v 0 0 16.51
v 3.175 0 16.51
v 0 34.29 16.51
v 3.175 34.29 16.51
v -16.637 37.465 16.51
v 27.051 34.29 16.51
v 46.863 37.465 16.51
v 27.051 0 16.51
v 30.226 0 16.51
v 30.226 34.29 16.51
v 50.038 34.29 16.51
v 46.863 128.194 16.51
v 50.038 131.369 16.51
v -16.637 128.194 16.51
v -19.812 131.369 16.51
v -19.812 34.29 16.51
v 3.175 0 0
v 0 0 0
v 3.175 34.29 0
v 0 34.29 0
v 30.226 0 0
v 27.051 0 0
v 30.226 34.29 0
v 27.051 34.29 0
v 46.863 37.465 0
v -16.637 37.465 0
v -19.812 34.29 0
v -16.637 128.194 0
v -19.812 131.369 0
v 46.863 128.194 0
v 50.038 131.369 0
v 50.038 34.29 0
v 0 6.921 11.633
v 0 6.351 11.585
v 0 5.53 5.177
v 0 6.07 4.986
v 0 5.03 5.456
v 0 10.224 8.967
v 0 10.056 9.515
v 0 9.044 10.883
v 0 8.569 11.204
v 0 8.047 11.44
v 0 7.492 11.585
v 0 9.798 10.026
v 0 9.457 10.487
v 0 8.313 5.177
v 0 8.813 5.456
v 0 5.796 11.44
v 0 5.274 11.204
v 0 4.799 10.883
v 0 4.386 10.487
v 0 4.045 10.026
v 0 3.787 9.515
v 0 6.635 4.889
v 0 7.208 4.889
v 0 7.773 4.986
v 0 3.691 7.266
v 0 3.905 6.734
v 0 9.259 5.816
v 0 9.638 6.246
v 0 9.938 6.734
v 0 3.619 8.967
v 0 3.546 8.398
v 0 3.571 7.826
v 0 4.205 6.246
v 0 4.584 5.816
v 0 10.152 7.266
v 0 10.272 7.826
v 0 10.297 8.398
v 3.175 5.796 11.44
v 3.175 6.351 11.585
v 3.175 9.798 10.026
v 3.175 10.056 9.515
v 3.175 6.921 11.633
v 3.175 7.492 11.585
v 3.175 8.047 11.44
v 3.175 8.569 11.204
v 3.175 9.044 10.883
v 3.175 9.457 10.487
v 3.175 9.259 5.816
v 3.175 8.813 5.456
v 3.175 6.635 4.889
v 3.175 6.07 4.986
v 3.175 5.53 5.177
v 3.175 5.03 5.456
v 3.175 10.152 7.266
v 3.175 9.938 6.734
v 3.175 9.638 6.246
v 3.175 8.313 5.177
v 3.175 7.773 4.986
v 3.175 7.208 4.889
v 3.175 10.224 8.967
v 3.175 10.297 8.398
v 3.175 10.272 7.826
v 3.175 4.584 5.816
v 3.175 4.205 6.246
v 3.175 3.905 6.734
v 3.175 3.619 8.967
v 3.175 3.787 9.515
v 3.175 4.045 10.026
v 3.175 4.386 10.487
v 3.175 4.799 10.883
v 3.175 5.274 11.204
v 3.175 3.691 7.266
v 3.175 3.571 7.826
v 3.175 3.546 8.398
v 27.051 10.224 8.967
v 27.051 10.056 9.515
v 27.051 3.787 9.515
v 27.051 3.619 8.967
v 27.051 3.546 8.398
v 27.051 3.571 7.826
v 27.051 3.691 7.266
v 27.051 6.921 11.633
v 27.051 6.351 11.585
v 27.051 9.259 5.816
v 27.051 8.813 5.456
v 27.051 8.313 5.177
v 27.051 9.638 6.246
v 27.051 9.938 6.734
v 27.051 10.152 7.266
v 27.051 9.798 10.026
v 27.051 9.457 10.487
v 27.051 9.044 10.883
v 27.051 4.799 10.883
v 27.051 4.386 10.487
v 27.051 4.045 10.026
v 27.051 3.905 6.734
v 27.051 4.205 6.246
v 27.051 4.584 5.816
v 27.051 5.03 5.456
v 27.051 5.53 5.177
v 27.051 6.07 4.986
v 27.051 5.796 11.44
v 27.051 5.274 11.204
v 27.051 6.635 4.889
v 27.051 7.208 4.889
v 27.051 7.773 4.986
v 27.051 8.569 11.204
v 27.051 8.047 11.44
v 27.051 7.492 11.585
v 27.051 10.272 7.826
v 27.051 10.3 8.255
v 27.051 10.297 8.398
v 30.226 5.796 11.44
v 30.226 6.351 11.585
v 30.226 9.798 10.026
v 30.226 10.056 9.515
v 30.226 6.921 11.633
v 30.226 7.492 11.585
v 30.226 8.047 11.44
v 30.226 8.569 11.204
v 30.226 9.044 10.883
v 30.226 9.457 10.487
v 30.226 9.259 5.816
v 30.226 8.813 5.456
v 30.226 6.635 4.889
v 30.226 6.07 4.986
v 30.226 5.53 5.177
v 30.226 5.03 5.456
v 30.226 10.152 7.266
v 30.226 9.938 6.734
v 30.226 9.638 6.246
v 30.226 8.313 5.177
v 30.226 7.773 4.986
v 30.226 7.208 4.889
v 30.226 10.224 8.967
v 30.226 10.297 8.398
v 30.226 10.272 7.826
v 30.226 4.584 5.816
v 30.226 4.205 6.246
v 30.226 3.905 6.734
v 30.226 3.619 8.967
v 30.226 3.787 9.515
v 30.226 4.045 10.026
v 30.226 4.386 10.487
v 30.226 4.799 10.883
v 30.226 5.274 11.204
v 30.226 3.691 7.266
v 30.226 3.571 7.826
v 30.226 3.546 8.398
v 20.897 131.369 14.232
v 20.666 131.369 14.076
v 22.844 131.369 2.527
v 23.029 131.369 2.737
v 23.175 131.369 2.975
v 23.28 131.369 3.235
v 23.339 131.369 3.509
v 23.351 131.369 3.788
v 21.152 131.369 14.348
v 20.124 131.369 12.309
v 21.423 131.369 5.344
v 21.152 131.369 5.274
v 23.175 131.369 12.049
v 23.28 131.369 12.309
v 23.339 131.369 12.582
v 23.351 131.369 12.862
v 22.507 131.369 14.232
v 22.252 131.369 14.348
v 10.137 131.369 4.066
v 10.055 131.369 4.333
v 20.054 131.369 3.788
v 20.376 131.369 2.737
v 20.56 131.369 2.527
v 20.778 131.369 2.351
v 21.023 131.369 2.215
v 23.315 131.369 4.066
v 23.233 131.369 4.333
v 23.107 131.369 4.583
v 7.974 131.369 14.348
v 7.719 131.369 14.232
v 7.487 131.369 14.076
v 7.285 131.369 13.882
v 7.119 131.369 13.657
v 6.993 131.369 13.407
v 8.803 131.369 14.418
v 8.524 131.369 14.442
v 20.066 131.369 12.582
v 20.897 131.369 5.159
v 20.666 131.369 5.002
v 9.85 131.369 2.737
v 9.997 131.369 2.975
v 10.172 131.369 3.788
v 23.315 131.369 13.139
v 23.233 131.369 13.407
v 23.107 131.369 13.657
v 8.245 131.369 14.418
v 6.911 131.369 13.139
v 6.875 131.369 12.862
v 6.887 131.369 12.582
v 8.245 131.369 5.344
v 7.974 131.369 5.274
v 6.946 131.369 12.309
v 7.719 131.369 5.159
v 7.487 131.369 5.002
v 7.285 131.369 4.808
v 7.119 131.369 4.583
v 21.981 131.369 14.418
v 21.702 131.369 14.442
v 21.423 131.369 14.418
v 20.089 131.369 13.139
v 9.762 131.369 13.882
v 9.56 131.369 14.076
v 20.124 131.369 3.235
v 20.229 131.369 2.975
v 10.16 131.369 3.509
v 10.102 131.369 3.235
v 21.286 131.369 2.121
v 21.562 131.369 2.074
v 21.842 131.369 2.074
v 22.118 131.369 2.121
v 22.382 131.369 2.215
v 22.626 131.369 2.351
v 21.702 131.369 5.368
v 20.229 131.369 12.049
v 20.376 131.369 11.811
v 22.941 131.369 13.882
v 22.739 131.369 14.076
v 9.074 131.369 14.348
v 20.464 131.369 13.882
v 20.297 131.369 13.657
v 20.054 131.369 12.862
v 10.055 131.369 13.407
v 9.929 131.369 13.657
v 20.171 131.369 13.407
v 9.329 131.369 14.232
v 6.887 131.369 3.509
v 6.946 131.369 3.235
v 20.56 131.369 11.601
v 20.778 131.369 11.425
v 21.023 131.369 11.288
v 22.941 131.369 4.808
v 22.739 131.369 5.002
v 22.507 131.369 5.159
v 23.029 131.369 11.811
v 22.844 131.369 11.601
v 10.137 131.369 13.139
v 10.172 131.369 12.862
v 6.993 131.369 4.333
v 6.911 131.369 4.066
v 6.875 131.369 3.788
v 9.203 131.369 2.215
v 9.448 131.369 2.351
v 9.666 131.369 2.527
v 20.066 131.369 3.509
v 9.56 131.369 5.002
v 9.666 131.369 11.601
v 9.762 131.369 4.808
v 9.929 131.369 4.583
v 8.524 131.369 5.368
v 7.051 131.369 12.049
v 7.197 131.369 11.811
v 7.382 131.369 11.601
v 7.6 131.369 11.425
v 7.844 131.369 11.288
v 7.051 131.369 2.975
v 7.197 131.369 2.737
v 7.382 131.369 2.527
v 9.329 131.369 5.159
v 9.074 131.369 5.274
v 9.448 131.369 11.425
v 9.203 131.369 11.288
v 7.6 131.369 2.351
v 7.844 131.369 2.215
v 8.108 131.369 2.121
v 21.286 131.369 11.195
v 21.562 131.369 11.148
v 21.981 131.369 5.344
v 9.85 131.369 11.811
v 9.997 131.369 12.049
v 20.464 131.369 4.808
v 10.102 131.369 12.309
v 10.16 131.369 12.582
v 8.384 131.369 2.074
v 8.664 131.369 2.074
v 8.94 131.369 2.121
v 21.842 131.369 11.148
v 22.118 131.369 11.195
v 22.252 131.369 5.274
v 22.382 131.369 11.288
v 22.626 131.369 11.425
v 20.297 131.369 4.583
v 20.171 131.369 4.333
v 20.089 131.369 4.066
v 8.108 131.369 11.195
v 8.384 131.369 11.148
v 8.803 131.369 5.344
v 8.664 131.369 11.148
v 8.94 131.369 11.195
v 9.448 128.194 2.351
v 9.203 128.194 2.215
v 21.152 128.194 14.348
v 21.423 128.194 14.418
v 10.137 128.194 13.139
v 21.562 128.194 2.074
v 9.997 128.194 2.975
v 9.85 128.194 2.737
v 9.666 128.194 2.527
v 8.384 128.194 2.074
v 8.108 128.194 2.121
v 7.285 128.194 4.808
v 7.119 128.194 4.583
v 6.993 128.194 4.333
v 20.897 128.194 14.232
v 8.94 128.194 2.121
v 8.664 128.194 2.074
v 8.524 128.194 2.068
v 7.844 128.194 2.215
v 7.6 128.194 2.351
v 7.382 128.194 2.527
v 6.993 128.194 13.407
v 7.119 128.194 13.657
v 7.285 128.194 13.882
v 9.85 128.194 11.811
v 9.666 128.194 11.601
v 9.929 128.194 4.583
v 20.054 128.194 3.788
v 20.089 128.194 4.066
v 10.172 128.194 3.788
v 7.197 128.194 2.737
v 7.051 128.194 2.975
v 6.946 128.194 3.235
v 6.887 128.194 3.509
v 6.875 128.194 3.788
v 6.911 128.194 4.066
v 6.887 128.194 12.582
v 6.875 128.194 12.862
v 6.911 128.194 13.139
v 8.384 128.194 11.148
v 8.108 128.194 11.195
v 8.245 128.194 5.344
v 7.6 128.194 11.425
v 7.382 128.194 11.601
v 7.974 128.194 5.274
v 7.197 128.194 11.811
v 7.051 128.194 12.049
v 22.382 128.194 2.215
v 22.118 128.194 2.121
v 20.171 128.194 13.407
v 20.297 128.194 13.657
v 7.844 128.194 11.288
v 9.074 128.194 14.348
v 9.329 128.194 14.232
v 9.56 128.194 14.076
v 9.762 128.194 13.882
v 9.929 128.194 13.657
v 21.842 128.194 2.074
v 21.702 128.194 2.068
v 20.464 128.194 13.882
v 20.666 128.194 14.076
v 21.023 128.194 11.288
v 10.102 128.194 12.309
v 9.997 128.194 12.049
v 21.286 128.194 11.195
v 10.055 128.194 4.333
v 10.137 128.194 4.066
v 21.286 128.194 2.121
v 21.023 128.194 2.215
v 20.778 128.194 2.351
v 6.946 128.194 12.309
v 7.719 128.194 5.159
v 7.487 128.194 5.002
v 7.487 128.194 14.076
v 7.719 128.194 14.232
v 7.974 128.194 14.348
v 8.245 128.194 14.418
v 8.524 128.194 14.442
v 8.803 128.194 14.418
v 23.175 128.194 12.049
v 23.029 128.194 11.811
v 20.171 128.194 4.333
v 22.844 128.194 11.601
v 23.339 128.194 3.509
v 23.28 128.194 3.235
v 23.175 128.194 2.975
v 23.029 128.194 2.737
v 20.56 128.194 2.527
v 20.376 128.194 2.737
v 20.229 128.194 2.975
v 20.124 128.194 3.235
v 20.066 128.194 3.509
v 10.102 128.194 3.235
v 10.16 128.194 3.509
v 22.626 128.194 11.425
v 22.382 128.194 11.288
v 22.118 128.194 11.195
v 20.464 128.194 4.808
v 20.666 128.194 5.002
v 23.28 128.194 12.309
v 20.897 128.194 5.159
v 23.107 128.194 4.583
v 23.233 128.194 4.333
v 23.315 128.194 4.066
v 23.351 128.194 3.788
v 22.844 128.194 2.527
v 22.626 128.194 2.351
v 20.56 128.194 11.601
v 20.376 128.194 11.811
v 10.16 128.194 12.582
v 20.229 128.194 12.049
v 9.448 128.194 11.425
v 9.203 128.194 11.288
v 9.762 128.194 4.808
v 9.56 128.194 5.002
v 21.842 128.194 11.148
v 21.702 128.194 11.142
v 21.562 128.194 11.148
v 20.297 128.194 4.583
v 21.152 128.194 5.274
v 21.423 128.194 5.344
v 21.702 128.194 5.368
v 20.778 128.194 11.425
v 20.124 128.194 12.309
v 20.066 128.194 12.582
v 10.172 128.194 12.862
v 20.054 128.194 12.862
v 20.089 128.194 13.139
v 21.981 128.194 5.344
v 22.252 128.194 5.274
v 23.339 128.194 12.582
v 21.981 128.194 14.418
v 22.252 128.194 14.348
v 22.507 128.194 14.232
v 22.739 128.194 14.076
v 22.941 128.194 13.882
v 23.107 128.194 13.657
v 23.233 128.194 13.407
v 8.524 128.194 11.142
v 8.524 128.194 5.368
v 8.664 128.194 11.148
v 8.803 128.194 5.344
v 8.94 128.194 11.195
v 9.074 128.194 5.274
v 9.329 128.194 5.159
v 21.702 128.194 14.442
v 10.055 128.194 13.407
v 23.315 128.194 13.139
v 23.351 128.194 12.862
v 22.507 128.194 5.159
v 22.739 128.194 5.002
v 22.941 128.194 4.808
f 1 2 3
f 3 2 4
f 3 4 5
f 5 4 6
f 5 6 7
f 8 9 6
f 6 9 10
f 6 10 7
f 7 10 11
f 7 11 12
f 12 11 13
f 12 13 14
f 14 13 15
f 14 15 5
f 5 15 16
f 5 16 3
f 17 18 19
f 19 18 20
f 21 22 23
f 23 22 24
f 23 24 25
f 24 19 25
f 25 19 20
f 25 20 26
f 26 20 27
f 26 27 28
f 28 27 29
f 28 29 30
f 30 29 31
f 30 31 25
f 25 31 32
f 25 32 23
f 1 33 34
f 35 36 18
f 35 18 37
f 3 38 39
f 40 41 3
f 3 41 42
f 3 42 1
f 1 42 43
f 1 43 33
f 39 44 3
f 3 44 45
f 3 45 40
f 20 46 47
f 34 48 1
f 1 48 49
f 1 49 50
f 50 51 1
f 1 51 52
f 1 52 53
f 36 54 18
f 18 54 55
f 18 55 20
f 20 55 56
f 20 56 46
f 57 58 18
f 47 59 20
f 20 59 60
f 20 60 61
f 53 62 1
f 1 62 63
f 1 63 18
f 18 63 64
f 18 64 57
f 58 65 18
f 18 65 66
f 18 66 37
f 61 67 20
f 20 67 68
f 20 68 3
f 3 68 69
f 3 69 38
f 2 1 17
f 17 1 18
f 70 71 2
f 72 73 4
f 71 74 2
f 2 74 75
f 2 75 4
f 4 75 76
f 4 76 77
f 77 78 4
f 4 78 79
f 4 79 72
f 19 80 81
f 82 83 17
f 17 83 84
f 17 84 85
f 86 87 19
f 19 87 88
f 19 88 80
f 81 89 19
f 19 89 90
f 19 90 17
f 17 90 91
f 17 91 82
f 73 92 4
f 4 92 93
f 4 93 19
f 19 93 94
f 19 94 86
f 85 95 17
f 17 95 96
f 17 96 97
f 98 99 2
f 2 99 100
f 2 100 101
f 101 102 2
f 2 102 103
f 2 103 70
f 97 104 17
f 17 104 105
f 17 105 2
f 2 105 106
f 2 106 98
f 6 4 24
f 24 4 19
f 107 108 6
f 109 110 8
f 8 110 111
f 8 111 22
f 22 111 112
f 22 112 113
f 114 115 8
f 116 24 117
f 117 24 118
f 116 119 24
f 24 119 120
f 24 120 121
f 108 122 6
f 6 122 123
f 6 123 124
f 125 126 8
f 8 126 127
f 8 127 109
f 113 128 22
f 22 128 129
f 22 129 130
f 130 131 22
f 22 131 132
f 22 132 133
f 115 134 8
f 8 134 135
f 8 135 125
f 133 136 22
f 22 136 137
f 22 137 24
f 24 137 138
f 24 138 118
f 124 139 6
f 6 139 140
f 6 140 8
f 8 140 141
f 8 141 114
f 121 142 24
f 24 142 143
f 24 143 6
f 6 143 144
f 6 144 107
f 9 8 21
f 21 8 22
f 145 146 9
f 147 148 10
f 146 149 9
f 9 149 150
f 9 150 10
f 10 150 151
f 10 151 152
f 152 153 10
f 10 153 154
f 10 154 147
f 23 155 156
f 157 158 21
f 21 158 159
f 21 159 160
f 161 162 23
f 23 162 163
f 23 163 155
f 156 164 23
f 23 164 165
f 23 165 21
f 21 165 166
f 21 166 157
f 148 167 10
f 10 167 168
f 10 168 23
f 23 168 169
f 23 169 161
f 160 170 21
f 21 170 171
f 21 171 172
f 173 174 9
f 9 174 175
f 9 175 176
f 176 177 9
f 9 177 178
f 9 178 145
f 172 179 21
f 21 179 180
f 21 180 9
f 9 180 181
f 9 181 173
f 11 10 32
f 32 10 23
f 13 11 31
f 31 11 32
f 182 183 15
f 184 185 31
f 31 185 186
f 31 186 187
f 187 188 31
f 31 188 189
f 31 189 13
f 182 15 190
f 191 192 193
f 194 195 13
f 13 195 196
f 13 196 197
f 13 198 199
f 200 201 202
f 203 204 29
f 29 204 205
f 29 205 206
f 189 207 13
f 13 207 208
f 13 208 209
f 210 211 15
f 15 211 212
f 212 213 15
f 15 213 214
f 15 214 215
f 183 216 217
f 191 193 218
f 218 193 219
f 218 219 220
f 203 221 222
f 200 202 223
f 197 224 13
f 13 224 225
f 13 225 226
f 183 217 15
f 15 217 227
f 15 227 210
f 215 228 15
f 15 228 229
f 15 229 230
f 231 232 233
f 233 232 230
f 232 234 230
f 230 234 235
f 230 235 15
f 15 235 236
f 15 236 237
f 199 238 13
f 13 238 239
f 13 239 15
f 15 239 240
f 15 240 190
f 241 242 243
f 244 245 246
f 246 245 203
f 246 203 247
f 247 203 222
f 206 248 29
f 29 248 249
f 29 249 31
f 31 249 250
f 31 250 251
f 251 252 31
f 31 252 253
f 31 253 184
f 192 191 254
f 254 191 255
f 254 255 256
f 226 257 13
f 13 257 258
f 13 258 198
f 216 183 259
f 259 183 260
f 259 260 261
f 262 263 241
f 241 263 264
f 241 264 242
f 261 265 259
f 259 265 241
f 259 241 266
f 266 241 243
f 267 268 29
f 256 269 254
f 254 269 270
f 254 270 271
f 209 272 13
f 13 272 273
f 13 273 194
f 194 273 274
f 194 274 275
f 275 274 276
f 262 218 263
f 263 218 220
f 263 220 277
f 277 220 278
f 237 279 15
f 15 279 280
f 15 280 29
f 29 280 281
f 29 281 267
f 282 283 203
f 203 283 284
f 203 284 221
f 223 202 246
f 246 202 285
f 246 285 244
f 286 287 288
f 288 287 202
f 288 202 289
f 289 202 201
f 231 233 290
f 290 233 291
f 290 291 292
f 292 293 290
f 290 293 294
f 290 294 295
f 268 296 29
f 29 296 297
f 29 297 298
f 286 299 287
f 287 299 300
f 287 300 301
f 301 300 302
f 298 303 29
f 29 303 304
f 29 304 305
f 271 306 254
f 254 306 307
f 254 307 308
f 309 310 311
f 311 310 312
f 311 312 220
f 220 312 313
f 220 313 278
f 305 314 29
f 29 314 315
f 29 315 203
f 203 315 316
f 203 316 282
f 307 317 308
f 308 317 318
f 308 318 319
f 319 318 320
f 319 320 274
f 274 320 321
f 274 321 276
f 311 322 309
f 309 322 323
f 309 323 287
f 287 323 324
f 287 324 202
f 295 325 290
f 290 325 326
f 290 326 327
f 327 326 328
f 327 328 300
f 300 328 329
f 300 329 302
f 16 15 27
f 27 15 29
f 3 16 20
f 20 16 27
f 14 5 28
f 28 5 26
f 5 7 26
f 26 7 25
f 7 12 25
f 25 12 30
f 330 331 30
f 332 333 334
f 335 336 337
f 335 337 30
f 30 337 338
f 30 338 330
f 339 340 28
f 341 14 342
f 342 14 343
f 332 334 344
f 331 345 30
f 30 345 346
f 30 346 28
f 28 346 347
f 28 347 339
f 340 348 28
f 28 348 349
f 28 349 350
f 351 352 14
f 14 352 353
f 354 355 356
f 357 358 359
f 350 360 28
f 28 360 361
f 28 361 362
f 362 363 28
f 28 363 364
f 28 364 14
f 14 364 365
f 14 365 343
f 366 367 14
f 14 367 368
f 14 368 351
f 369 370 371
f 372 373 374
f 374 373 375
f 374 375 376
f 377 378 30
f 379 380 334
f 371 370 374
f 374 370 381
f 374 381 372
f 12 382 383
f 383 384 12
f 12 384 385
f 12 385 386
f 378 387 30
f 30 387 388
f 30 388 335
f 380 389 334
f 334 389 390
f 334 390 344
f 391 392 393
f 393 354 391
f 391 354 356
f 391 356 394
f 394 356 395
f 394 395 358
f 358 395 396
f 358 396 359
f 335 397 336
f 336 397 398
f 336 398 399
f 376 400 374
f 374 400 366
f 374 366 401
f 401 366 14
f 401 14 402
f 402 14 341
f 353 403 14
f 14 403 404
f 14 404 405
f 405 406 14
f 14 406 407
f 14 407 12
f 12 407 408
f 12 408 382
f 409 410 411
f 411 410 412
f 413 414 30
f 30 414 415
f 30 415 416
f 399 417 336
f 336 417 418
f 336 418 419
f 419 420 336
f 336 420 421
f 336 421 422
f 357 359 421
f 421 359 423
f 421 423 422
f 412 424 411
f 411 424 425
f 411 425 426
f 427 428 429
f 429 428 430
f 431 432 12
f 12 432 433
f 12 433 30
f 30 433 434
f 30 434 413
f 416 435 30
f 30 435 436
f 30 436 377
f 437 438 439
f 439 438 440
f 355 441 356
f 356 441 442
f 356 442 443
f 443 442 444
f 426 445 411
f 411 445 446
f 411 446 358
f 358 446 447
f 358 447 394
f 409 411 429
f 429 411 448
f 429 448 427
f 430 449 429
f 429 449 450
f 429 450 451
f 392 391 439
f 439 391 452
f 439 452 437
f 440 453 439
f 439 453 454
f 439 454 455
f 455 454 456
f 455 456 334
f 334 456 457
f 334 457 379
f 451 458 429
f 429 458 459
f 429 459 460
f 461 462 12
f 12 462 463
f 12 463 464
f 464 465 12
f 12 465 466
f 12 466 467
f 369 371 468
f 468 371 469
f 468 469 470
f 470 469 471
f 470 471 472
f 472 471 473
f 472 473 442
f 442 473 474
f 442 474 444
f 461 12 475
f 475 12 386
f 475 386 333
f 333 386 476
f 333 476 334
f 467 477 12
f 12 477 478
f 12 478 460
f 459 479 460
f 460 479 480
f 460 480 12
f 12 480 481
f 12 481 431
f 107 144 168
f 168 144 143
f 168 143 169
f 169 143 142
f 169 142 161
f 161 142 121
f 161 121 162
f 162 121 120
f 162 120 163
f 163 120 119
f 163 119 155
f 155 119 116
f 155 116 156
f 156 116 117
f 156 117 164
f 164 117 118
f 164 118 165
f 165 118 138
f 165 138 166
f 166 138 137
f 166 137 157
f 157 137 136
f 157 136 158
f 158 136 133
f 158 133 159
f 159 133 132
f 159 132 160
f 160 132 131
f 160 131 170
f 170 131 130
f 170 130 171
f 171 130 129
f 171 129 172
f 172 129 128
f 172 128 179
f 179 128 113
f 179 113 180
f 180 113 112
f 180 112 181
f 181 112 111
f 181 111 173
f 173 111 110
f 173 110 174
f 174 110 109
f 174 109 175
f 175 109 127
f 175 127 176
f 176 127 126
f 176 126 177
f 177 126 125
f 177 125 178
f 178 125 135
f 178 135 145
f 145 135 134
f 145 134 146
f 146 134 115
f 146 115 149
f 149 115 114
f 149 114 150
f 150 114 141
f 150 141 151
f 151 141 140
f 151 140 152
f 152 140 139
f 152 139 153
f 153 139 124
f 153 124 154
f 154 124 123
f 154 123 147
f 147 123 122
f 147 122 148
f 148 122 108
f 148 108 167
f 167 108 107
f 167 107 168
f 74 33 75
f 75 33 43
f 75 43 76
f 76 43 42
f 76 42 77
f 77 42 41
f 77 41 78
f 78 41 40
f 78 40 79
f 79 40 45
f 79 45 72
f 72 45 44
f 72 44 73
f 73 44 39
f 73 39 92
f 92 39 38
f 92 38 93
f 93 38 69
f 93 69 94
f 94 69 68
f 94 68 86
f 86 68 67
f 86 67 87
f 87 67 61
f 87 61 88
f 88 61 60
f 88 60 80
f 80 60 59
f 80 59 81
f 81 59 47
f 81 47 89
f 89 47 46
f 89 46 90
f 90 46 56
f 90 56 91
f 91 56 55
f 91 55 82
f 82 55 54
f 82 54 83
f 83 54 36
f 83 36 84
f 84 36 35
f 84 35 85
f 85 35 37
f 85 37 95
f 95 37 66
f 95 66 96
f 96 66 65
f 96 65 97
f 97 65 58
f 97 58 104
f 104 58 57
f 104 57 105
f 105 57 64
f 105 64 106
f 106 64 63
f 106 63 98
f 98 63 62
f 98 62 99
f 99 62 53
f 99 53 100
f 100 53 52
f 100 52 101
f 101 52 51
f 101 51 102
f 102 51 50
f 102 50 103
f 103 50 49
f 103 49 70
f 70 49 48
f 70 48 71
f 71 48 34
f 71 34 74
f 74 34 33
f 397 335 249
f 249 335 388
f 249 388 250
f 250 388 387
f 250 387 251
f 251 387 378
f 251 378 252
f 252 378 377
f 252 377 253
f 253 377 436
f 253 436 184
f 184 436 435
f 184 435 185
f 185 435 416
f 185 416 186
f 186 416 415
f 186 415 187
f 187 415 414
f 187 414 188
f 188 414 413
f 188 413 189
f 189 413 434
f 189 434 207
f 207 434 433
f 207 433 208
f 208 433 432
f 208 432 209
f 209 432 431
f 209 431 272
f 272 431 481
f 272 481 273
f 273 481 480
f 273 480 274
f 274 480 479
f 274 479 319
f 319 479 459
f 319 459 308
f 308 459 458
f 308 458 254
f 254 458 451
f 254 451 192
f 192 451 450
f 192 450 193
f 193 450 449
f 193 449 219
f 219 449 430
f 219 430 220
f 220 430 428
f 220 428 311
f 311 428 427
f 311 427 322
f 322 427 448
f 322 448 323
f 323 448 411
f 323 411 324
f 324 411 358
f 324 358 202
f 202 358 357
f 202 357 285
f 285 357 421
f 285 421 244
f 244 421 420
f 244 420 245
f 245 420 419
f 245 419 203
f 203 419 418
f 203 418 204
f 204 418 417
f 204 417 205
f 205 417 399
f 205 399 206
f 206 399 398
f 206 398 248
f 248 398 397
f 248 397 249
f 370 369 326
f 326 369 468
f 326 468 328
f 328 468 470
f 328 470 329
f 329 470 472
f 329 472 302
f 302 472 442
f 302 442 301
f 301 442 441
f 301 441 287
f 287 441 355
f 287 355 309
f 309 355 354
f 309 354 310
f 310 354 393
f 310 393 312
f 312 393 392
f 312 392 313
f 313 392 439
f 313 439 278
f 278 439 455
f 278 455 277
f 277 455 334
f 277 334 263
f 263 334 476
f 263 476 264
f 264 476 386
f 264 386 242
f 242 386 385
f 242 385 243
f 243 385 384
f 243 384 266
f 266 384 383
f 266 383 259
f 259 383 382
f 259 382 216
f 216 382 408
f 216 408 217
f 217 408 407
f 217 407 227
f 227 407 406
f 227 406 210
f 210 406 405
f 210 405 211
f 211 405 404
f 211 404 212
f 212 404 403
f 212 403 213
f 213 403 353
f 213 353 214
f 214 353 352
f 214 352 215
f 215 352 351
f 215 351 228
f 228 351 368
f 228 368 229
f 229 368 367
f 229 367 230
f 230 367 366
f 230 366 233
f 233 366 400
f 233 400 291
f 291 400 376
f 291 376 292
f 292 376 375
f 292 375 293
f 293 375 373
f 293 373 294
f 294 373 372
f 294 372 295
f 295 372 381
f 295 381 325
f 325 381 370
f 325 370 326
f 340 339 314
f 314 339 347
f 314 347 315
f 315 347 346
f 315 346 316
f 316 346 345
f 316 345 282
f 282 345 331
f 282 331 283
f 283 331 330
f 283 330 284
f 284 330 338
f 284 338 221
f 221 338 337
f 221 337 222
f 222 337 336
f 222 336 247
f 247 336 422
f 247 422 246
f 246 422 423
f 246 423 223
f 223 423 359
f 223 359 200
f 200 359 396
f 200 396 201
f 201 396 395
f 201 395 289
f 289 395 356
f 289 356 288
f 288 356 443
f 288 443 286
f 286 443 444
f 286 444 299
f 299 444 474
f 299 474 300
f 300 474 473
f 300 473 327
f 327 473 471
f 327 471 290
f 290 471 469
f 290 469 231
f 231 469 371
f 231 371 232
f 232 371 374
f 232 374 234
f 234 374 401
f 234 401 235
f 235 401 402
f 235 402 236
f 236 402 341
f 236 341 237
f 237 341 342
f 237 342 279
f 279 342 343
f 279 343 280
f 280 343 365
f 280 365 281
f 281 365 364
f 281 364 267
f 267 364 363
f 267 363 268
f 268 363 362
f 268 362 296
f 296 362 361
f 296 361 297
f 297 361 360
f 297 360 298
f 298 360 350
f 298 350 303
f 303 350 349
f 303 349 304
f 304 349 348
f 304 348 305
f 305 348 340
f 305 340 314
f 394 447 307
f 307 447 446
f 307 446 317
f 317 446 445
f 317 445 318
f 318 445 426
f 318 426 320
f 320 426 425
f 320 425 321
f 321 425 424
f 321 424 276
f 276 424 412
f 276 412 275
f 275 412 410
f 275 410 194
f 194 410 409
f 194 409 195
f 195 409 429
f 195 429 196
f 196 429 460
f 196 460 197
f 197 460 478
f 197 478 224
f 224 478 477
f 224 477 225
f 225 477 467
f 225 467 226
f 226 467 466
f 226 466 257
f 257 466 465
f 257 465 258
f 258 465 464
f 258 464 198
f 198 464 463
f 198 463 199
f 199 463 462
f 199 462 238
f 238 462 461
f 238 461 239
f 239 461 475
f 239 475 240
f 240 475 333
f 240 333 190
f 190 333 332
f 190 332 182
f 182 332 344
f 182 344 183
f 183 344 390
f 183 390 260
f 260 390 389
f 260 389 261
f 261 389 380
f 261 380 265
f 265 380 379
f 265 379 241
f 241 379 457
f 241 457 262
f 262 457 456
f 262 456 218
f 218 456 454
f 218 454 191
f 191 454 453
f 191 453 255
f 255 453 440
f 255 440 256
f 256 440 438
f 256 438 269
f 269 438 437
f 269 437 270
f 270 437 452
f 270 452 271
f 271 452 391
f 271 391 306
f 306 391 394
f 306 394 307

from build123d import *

# Parameters (mm, degrees)
SKETCH1_W           = 63.5
SKETCH1_H           = 90.7288
BOSS_EXTRUDE1_DEPTH = 16.51
SKETCH2_R           = 3.3782
CUT_EXTRUDE1_DEPTH  = 42.672
SKETCH3_R           = 1.65
CUT_EXTRUDE2_DEPTH  = 42.672


with BuildPart() as part:
    # Sketch1 → Boss-Extrude1 (new body)
    with BuildSketch(Plane.XY):
        Polygon((3.175, 34.29), (27.051, 34.29), (27.051, 0), (30.226, 0), (30.226, 34.29), (50.038, 34.29), (50.038, 131.3688), (-19.812, 131.3688), (-19.812, 34.29), (0, 34.29), (0, 0), (3.175, 0), align=None)
        with Locations((15.113, 82.8294)):
            Rectangle(SKETCH1_W, SKETCH1_H, mode=Mode.SUBTRACT)
    extrude(amount=BOSS_EXTRUDE1_DEPTH)

    # Sketch2 → Cut-Extrude1 (cut)
    with BuildSketch(Plane.ZY):
        with Locations((8.255, 6.9215)):
            Circle(SKETCH2_R)
    extrude(amount=-CUT_EXTRUDE1_DEPTH, mode=Mode.SUBTRACT)

    # Sketch3 → Cut-Extrude2 (cut)
    with BuildSketch(Plane(origin=(0, 131.3688, 0), x_dir=(1, 0, 0), z_dir=(0, 1, 0))):
        with Locations((8.52383023, -3.718168314)):
            Circle(SKETCH3_R)
        with Locations((8.52383023, -12.791831686)):
            Circle(SKETCH3_R)
        with Locations((21.70216977, -12.791831686)):
            Circle(SKETCH3_R)
        with Locations((21.70216977, -3.718168314)):
            Circle(SKETCH3_R)
    extrude(amount=-CUT_EXTRUDE2_DEPTH, mode=Mode.SUBTRACT)


solid = part.part
